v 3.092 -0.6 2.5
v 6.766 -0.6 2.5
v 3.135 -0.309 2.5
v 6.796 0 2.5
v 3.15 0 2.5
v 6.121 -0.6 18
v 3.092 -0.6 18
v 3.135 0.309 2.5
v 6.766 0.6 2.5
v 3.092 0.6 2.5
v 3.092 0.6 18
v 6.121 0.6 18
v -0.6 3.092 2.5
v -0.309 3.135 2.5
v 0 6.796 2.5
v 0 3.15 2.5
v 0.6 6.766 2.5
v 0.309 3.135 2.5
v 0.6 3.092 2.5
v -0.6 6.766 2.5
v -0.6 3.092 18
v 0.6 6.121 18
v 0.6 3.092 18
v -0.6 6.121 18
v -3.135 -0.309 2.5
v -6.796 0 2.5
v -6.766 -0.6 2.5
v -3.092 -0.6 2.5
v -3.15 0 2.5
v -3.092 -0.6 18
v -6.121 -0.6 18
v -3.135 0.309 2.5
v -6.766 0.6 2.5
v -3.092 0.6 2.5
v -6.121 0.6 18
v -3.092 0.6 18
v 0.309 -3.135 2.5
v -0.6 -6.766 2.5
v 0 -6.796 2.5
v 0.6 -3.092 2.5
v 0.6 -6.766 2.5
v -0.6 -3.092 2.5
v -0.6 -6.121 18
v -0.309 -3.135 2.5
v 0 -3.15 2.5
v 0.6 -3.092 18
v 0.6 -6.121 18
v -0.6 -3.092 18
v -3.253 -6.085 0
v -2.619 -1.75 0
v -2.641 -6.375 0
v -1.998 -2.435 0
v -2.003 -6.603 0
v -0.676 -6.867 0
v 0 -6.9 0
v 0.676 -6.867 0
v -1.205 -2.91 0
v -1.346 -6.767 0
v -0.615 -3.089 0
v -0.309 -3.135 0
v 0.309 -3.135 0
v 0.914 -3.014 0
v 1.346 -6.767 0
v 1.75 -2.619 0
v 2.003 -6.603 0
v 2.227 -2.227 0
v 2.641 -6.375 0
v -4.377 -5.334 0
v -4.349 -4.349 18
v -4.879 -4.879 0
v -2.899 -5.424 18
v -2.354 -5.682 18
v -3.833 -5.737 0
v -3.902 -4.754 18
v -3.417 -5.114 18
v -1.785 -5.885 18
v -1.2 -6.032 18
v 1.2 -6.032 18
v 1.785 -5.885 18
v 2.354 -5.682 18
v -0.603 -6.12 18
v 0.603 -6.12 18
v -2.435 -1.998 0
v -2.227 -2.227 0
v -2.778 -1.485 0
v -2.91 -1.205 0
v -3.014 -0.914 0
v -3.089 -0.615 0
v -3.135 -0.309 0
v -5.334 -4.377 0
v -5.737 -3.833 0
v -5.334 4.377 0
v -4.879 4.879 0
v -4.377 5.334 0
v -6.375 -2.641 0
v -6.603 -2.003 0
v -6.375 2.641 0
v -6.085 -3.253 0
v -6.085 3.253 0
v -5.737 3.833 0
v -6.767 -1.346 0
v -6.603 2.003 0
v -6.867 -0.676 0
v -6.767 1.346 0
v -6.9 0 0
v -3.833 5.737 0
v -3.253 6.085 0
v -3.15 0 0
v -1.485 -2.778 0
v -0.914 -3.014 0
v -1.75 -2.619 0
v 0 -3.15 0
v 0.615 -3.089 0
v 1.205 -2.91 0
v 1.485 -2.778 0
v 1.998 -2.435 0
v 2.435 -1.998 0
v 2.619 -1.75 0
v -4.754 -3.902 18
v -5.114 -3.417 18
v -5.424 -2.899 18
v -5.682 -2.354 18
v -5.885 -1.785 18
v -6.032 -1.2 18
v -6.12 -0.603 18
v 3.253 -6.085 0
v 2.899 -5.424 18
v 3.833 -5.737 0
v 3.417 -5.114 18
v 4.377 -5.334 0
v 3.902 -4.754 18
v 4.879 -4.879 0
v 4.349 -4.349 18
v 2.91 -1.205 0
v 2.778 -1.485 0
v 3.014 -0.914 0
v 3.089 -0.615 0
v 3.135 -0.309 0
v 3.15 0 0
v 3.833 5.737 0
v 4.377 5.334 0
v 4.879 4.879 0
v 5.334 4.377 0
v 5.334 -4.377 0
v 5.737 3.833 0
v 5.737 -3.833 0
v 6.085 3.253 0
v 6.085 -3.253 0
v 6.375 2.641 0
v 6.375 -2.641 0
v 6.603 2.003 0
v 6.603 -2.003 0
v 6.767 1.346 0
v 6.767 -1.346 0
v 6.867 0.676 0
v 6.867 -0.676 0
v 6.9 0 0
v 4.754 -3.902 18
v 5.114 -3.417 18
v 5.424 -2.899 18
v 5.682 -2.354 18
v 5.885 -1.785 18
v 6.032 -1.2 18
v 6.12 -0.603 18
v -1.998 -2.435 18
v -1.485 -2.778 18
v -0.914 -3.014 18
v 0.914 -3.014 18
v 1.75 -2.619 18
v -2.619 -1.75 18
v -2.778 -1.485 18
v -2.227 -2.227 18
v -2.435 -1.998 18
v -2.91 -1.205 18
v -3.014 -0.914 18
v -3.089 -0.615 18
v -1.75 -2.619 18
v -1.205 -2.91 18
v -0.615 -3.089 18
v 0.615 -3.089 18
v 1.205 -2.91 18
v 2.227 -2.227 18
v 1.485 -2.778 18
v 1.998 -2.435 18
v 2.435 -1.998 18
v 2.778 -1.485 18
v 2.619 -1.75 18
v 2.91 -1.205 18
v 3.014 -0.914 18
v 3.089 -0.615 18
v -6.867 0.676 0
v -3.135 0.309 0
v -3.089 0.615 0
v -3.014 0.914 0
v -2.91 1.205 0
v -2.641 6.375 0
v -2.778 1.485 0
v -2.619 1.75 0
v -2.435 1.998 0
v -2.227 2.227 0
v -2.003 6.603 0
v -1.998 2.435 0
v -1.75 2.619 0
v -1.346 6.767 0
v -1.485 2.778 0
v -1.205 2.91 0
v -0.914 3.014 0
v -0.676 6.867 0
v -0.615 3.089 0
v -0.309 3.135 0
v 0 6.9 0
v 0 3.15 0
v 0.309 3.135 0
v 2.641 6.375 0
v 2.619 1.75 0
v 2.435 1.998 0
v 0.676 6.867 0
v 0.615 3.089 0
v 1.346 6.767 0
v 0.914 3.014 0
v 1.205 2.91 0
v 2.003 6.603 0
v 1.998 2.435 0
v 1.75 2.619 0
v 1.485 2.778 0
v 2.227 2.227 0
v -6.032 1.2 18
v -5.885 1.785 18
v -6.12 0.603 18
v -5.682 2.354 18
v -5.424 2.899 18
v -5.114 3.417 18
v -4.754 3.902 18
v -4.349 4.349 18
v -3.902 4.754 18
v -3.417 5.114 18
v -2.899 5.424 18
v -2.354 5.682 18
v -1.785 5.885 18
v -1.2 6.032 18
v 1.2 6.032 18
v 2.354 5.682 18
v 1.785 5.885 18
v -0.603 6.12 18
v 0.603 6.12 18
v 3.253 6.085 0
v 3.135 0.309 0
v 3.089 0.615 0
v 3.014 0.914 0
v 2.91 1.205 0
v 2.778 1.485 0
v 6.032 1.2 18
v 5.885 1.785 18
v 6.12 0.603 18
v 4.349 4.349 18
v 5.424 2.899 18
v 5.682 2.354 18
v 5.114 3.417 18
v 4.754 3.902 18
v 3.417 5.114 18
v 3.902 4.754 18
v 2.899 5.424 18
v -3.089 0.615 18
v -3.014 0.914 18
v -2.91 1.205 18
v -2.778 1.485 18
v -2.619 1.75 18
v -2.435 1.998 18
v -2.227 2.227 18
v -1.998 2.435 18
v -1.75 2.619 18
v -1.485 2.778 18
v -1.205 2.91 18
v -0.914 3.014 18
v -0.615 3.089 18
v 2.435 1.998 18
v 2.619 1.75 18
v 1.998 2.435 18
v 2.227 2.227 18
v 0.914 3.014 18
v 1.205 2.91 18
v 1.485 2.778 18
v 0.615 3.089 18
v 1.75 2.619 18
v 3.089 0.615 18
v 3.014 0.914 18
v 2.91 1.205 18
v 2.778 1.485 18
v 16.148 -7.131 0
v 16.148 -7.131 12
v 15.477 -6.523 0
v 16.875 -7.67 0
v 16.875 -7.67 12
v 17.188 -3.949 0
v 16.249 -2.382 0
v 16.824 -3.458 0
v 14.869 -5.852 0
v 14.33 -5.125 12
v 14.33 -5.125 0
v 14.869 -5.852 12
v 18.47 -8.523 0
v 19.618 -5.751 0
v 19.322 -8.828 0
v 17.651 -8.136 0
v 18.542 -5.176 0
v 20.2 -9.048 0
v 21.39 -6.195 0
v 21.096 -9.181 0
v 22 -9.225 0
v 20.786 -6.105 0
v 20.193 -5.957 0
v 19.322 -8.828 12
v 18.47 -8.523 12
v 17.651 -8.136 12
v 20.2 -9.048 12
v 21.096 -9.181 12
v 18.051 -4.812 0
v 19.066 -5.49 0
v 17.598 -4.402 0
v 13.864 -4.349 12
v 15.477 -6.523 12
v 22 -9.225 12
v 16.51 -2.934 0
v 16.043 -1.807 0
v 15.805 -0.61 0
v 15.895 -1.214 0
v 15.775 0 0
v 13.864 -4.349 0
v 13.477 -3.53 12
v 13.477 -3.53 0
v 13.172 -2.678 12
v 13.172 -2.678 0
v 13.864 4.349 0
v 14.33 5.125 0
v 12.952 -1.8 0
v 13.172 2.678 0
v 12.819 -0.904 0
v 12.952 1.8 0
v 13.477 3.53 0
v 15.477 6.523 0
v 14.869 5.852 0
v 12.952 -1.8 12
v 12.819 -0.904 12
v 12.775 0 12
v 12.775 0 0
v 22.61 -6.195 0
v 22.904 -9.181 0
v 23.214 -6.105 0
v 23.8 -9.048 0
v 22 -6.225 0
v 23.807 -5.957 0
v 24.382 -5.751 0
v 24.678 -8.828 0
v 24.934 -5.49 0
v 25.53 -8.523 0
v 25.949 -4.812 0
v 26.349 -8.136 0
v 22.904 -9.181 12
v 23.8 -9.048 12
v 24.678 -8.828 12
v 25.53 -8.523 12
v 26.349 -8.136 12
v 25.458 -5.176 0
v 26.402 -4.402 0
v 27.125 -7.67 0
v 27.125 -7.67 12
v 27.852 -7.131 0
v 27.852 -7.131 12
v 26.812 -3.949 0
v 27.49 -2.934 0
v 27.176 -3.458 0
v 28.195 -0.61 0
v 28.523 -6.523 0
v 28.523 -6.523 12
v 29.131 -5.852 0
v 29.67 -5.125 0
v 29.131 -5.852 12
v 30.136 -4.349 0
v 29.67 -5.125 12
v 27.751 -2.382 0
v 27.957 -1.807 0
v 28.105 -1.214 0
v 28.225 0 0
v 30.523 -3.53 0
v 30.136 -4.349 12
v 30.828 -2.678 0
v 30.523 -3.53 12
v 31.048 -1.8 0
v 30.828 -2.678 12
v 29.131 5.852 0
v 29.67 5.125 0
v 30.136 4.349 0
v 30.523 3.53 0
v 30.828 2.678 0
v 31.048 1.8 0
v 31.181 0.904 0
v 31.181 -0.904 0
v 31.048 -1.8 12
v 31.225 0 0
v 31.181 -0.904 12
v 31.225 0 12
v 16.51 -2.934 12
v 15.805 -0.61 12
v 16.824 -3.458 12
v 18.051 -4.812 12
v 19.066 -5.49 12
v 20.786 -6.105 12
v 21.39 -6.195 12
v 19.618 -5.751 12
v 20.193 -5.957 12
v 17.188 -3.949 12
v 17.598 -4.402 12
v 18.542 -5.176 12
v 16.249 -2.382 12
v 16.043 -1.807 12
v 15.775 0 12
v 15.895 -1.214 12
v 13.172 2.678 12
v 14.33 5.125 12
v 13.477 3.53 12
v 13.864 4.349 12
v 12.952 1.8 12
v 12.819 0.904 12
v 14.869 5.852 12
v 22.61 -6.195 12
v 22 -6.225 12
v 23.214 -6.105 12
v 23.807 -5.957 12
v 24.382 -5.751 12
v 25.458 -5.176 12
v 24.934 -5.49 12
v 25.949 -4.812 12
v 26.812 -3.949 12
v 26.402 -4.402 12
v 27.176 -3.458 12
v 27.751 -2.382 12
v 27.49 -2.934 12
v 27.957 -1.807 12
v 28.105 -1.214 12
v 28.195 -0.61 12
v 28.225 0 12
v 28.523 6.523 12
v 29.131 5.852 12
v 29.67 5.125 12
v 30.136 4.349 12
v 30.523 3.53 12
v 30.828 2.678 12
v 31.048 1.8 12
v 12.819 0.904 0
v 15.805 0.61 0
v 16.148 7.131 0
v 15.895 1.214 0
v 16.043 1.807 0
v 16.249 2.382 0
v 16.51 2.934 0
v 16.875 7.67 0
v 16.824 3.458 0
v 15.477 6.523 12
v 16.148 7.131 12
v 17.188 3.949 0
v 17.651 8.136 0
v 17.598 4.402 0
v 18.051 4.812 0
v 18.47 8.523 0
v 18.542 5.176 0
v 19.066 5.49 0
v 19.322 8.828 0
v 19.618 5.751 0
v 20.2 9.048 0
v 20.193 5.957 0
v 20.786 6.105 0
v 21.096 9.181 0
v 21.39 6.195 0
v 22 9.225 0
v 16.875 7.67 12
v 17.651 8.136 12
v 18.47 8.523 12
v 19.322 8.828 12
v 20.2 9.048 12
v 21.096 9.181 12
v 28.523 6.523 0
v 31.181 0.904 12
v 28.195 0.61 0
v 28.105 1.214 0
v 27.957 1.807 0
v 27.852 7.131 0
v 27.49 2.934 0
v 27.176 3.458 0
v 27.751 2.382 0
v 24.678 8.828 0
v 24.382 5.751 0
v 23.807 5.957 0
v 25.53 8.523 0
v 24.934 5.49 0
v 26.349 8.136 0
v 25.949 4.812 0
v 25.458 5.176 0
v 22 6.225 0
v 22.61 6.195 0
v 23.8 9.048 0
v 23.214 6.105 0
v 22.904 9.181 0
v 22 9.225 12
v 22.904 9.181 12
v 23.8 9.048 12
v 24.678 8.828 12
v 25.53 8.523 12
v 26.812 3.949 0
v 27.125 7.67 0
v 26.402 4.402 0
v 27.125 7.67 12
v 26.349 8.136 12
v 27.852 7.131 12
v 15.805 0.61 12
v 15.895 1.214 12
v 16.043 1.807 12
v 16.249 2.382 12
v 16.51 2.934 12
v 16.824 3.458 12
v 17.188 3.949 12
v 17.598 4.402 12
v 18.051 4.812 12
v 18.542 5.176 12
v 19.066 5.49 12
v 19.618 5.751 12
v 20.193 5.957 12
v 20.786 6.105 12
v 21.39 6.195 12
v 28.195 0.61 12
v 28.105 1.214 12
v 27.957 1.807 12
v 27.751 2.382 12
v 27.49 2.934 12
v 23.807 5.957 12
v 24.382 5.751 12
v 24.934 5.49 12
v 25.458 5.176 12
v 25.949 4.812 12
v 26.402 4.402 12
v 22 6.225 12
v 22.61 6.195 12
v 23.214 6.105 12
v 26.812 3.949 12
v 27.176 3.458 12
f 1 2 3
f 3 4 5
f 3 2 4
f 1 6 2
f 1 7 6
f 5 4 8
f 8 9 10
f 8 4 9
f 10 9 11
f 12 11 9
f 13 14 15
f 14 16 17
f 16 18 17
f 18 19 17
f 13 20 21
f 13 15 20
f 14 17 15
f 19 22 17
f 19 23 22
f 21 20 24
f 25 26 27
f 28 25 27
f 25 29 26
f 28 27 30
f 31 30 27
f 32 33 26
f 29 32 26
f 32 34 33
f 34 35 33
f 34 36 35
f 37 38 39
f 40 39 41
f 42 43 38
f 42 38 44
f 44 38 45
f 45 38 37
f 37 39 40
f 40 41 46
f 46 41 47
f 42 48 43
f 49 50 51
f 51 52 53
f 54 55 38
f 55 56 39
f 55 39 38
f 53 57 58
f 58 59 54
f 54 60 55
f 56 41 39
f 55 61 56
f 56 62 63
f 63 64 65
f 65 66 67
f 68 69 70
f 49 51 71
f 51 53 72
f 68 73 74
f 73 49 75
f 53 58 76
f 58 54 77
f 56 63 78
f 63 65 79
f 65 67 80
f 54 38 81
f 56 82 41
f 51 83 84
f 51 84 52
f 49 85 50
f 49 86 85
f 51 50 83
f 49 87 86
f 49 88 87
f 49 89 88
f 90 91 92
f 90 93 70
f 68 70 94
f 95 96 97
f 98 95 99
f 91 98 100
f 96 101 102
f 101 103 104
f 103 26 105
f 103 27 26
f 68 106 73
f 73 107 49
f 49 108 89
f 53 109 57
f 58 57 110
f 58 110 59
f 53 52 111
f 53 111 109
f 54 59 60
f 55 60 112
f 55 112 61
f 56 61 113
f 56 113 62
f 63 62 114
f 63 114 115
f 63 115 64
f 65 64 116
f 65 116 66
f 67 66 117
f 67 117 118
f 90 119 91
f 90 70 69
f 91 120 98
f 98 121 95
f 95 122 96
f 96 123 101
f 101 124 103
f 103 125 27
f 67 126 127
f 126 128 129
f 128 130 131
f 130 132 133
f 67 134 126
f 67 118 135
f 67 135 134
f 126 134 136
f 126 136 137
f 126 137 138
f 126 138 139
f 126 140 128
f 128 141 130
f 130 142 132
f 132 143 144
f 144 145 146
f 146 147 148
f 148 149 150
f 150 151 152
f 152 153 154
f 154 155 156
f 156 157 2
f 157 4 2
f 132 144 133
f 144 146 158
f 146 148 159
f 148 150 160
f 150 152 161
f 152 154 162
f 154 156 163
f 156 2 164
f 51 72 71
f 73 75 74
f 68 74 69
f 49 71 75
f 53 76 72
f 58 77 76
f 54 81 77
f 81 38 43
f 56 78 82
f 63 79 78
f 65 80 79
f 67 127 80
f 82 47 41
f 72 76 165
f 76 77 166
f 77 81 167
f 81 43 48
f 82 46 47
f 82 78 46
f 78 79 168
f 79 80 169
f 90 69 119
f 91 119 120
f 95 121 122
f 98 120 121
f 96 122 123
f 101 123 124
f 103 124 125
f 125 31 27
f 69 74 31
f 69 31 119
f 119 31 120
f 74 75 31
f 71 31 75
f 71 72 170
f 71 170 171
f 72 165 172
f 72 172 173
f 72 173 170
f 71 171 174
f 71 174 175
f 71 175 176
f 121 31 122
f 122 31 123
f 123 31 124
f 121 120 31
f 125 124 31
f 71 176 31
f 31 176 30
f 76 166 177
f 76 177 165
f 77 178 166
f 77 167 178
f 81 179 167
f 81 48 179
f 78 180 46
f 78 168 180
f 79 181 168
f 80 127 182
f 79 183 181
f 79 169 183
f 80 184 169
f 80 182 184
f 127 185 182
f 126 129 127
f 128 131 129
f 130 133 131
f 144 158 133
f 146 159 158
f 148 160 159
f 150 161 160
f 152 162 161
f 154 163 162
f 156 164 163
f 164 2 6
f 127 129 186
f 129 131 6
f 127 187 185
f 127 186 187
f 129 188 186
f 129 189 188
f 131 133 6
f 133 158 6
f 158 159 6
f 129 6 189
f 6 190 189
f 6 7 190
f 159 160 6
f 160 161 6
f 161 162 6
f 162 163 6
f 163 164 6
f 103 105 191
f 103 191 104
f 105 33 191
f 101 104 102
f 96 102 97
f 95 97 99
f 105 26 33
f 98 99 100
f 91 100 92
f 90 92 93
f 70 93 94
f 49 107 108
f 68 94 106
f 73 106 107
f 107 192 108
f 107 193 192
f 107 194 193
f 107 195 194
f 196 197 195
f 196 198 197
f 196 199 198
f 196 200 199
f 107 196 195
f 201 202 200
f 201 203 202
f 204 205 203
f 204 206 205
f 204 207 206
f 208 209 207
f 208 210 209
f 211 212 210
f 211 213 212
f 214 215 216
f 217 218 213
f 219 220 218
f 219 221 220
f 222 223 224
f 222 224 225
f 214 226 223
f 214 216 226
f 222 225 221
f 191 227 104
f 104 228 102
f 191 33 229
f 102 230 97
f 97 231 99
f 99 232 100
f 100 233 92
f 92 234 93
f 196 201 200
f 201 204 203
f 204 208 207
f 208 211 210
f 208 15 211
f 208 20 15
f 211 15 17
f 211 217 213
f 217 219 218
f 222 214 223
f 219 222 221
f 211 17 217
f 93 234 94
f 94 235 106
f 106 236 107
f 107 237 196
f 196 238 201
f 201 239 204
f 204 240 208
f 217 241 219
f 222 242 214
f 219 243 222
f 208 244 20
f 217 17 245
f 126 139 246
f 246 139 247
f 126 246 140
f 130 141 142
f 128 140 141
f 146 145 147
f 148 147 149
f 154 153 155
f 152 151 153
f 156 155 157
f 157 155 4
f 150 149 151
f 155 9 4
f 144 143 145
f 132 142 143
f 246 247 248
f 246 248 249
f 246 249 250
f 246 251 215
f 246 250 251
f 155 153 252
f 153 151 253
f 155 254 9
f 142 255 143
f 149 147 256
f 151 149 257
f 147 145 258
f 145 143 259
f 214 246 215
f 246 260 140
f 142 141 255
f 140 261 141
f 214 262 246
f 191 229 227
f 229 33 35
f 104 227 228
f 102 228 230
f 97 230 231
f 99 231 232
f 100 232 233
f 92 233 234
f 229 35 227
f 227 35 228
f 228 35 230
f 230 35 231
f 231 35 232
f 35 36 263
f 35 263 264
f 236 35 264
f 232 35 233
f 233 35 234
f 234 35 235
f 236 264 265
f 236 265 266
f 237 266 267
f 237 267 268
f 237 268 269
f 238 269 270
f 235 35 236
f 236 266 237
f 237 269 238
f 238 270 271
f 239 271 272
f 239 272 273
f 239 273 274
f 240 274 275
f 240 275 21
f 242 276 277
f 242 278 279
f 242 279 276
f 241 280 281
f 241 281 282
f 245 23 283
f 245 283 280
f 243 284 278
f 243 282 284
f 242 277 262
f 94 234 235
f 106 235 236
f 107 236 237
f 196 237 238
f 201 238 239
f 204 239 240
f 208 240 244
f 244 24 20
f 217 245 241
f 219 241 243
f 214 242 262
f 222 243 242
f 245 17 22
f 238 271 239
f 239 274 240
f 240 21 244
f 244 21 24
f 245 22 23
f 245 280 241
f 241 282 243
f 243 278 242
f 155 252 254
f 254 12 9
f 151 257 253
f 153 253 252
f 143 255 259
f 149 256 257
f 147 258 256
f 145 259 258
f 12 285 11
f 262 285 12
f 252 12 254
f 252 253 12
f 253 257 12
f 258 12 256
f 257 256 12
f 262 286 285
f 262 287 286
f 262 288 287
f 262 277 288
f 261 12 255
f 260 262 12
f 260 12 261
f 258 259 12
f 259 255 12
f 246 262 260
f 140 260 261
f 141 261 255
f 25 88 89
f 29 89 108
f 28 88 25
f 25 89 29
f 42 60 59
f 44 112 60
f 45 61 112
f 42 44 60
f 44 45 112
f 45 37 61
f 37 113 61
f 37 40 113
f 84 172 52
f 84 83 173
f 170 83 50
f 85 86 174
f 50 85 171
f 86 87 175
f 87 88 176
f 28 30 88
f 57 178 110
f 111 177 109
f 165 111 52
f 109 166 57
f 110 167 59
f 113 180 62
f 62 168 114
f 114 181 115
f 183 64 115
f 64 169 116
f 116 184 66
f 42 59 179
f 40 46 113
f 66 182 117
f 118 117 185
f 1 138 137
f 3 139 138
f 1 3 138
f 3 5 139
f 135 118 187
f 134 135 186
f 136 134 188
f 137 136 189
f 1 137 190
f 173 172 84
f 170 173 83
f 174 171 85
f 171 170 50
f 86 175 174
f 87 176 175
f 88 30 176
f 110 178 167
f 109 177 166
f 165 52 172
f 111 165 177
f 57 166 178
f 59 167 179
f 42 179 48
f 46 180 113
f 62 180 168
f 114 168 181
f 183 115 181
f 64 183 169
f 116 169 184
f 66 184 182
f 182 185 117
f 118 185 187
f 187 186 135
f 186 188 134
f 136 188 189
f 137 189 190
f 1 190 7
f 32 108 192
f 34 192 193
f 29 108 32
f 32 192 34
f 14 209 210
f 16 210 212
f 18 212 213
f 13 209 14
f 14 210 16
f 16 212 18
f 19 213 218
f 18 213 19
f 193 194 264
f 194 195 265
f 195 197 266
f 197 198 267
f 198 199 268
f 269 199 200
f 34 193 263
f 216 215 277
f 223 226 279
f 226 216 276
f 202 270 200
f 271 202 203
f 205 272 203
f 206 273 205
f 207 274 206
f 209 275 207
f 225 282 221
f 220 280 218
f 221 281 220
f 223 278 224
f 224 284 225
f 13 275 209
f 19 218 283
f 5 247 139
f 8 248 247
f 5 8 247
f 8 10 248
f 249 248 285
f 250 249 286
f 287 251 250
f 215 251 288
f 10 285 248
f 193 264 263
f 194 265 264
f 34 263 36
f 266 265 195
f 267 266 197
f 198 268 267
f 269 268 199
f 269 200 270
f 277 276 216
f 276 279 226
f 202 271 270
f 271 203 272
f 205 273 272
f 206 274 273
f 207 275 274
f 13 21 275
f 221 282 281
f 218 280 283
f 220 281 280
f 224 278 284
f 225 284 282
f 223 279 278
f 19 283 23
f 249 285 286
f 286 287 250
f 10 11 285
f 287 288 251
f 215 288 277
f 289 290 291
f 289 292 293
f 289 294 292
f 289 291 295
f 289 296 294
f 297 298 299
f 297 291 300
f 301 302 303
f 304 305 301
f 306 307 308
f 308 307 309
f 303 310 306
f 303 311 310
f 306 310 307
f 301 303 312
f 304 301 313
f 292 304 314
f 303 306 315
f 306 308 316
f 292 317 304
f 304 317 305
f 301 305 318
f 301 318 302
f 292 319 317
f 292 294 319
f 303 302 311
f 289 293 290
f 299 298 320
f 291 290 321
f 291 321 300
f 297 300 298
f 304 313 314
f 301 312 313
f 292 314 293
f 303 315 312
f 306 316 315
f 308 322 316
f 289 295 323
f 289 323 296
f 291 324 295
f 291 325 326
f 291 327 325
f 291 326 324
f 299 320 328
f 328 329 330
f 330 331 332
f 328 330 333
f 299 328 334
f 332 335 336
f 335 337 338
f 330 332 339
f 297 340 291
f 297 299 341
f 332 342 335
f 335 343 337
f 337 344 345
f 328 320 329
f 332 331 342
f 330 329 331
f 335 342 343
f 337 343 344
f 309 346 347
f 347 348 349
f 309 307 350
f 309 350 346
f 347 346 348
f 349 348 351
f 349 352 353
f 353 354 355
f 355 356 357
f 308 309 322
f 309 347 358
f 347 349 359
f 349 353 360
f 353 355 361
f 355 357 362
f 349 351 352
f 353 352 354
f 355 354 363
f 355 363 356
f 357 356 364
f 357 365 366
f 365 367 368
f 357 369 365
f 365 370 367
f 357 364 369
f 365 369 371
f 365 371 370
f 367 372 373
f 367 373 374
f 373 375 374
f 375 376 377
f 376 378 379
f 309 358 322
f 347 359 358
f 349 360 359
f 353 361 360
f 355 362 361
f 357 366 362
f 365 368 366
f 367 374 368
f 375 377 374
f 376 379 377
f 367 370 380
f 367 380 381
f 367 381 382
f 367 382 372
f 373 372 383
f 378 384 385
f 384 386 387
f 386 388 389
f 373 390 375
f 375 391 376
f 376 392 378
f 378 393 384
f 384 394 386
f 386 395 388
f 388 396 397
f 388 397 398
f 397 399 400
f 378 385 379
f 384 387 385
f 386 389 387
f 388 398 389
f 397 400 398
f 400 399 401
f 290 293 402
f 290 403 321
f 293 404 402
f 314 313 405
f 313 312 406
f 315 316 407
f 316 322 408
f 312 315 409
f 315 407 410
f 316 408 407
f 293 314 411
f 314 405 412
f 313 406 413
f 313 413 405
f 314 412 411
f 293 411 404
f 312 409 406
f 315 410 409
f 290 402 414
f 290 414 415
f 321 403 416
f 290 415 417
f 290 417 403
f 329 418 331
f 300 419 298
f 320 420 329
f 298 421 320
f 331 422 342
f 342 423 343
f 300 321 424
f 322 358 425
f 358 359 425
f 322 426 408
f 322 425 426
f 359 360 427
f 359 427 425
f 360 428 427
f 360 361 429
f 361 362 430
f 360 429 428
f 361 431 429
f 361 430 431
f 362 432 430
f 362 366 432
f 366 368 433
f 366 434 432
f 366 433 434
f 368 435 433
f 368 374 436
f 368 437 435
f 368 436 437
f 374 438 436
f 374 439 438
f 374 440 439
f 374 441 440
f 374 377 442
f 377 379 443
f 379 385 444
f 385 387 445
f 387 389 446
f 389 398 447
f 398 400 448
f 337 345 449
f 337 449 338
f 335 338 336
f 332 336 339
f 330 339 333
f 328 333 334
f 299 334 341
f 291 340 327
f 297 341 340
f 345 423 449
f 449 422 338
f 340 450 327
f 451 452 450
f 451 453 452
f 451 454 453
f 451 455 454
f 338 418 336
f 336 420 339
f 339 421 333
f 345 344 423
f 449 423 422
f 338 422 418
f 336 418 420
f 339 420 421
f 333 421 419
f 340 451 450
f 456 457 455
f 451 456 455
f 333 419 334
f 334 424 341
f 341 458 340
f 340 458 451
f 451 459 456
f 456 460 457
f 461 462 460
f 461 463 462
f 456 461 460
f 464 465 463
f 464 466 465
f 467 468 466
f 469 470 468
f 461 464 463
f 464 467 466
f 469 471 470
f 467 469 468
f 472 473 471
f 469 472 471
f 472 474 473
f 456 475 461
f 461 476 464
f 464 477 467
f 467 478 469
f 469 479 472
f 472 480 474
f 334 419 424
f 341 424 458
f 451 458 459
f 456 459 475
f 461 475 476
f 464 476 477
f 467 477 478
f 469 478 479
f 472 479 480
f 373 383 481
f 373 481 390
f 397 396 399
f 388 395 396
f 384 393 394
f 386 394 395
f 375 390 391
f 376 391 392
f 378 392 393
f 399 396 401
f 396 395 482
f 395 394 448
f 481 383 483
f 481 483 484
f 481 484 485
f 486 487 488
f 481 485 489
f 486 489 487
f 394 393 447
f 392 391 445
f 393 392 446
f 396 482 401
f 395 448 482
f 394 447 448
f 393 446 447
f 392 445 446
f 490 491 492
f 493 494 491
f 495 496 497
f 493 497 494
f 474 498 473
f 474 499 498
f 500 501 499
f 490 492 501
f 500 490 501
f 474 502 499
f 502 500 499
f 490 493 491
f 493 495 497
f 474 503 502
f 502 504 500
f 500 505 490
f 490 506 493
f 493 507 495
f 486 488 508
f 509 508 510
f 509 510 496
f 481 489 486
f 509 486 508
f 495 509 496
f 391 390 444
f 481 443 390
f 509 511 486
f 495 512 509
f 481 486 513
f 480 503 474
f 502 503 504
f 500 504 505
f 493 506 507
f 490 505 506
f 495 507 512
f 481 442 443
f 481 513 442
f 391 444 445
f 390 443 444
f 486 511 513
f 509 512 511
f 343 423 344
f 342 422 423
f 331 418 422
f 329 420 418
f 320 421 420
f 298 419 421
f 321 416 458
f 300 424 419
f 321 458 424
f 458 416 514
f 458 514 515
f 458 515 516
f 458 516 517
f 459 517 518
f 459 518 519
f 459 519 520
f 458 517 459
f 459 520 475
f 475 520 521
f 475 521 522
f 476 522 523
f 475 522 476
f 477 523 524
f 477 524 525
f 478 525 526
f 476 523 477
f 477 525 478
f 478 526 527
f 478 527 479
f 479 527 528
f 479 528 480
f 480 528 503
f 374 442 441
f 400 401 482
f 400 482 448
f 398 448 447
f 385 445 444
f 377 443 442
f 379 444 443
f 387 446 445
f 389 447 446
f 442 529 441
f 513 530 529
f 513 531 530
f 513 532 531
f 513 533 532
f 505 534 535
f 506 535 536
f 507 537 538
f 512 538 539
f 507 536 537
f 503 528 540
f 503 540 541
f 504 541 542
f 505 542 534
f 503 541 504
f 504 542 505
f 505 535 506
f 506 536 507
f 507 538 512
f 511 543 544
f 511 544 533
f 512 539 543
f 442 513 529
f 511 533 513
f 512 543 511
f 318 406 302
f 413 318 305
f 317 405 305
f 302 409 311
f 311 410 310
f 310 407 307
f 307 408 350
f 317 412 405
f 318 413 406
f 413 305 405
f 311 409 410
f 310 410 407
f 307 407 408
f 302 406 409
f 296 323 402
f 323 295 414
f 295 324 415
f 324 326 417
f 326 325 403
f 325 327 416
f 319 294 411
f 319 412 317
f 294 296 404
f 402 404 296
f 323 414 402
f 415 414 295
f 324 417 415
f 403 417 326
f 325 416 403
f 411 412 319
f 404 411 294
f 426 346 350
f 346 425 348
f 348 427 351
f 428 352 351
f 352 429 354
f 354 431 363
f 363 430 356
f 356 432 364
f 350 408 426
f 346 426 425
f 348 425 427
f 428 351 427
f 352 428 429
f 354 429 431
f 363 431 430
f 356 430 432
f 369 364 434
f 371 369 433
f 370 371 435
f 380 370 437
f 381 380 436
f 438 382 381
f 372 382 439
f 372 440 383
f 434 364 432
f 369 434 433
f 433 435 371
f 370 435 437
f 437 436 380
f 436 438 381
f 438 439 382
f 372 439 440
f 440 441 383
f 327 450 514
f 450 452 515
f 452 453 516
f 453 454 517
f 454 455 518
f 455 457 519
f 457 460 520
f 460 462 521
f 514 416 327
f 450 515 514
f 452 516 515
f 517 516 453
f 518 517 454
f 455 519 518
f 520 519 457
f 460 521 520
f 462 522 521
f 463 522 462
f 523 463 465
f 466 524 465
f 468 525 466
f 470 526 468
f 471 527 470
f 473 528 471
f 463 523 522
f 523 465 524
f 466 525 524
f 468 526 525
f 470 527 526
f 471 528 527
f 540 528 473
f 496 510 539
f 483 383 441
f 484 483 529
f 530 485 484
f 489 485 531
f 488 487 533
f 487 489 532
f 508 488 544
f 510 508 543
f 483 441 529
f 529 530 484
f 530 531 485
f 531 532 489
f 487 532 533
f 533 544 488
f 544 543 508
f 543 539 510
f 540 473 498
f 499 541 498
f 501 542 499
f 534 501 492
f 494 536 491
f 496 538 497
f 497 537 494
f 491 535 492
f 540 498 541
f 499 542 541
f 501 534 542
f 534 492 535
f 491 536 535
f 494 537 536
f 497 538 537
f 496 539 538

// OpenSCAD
// Siphon strainer -- 1/4" tubing adapter (split collet + collar)
// Printed as a standalone pair; the sphere filter is combined later.
//
// Two fixes over the original geometry:
//   1. base_ring: slot cuts stop 2.5 mm short of the base, so the collet is one
//      part instead of four loose quarter-shells.
//   2. collar_id = clamp_od + collar_gap. The original clamp_od - 0.5 was
//      smaller than the collet's small end and could not be fitted at all.
//
// GRIP is set by the two numbers below. tube_bore controls how much the
// fingers must close to reach the tubing; collar_gap controls how hard the
// collar wedges them. Printed bores come out undersize by ~0.1-0.2 mm, so
// this is guess-and-check.

$fn = 64;

// ---- grip class (these are the knobs) ----
tube_bore  = 6.30;   // nominal tubing OD is 6.35
collar_gap = 0.15;   // collar_id = clamp_od + this

// Tubing
tube_od = 6.35;

// Collet
clamp_length = 18;
wall = 3;
slot_width = 1.2;
num_slots = 4;
taper = 1.5;
base_ring = 2.5;

// Collar
collar_length = 12;

// Derived
clamp_od  = tube_bore + 2*wall;
collar_id = clamp_od + collar_gap;
collar_od = collar_id + 2*wall;

// squeeze available at the base-ring stop, and the gap the fingers must close
gap_to_tube = (tube_bore - tube_od)/2;
squeeze_max = (taper*(1-base_ring/clamp_length) - collar_gap)/2;

echo(str("GRIP: bore=", tube_bore, " gap_to_tube=", gap_to_tube,
         " | collar_id=", collar_id, " squeeze_max=", squeeze_max));

module collet() {
    difference() {
        cylinder(h=clamp_length, d1=clamp_od+taper, d2=clamp_od);

        translate([0,0,-0.1])
            cylinder(h=clamp_length+0.2, d=tube_bore);

        for (a=[0:360/num_slots:359]) {
            rotate([0,0,a])
                translate([0,-slot_width/2,base_ring])
                    cube([clamp_od+taper, slot_width, clamp_length-base_ring+0.1]);
        }
    }
}

module collar() {
    difference() {
        cylinder(h=collar_length, d=collar_od);
        translate([0,0,-0.1])
            cylinder(h=collar_length+0.2, d=collar_id);
    }
}

// Both parts on one build plate
collet();
translate([22,0,0]) collar();
